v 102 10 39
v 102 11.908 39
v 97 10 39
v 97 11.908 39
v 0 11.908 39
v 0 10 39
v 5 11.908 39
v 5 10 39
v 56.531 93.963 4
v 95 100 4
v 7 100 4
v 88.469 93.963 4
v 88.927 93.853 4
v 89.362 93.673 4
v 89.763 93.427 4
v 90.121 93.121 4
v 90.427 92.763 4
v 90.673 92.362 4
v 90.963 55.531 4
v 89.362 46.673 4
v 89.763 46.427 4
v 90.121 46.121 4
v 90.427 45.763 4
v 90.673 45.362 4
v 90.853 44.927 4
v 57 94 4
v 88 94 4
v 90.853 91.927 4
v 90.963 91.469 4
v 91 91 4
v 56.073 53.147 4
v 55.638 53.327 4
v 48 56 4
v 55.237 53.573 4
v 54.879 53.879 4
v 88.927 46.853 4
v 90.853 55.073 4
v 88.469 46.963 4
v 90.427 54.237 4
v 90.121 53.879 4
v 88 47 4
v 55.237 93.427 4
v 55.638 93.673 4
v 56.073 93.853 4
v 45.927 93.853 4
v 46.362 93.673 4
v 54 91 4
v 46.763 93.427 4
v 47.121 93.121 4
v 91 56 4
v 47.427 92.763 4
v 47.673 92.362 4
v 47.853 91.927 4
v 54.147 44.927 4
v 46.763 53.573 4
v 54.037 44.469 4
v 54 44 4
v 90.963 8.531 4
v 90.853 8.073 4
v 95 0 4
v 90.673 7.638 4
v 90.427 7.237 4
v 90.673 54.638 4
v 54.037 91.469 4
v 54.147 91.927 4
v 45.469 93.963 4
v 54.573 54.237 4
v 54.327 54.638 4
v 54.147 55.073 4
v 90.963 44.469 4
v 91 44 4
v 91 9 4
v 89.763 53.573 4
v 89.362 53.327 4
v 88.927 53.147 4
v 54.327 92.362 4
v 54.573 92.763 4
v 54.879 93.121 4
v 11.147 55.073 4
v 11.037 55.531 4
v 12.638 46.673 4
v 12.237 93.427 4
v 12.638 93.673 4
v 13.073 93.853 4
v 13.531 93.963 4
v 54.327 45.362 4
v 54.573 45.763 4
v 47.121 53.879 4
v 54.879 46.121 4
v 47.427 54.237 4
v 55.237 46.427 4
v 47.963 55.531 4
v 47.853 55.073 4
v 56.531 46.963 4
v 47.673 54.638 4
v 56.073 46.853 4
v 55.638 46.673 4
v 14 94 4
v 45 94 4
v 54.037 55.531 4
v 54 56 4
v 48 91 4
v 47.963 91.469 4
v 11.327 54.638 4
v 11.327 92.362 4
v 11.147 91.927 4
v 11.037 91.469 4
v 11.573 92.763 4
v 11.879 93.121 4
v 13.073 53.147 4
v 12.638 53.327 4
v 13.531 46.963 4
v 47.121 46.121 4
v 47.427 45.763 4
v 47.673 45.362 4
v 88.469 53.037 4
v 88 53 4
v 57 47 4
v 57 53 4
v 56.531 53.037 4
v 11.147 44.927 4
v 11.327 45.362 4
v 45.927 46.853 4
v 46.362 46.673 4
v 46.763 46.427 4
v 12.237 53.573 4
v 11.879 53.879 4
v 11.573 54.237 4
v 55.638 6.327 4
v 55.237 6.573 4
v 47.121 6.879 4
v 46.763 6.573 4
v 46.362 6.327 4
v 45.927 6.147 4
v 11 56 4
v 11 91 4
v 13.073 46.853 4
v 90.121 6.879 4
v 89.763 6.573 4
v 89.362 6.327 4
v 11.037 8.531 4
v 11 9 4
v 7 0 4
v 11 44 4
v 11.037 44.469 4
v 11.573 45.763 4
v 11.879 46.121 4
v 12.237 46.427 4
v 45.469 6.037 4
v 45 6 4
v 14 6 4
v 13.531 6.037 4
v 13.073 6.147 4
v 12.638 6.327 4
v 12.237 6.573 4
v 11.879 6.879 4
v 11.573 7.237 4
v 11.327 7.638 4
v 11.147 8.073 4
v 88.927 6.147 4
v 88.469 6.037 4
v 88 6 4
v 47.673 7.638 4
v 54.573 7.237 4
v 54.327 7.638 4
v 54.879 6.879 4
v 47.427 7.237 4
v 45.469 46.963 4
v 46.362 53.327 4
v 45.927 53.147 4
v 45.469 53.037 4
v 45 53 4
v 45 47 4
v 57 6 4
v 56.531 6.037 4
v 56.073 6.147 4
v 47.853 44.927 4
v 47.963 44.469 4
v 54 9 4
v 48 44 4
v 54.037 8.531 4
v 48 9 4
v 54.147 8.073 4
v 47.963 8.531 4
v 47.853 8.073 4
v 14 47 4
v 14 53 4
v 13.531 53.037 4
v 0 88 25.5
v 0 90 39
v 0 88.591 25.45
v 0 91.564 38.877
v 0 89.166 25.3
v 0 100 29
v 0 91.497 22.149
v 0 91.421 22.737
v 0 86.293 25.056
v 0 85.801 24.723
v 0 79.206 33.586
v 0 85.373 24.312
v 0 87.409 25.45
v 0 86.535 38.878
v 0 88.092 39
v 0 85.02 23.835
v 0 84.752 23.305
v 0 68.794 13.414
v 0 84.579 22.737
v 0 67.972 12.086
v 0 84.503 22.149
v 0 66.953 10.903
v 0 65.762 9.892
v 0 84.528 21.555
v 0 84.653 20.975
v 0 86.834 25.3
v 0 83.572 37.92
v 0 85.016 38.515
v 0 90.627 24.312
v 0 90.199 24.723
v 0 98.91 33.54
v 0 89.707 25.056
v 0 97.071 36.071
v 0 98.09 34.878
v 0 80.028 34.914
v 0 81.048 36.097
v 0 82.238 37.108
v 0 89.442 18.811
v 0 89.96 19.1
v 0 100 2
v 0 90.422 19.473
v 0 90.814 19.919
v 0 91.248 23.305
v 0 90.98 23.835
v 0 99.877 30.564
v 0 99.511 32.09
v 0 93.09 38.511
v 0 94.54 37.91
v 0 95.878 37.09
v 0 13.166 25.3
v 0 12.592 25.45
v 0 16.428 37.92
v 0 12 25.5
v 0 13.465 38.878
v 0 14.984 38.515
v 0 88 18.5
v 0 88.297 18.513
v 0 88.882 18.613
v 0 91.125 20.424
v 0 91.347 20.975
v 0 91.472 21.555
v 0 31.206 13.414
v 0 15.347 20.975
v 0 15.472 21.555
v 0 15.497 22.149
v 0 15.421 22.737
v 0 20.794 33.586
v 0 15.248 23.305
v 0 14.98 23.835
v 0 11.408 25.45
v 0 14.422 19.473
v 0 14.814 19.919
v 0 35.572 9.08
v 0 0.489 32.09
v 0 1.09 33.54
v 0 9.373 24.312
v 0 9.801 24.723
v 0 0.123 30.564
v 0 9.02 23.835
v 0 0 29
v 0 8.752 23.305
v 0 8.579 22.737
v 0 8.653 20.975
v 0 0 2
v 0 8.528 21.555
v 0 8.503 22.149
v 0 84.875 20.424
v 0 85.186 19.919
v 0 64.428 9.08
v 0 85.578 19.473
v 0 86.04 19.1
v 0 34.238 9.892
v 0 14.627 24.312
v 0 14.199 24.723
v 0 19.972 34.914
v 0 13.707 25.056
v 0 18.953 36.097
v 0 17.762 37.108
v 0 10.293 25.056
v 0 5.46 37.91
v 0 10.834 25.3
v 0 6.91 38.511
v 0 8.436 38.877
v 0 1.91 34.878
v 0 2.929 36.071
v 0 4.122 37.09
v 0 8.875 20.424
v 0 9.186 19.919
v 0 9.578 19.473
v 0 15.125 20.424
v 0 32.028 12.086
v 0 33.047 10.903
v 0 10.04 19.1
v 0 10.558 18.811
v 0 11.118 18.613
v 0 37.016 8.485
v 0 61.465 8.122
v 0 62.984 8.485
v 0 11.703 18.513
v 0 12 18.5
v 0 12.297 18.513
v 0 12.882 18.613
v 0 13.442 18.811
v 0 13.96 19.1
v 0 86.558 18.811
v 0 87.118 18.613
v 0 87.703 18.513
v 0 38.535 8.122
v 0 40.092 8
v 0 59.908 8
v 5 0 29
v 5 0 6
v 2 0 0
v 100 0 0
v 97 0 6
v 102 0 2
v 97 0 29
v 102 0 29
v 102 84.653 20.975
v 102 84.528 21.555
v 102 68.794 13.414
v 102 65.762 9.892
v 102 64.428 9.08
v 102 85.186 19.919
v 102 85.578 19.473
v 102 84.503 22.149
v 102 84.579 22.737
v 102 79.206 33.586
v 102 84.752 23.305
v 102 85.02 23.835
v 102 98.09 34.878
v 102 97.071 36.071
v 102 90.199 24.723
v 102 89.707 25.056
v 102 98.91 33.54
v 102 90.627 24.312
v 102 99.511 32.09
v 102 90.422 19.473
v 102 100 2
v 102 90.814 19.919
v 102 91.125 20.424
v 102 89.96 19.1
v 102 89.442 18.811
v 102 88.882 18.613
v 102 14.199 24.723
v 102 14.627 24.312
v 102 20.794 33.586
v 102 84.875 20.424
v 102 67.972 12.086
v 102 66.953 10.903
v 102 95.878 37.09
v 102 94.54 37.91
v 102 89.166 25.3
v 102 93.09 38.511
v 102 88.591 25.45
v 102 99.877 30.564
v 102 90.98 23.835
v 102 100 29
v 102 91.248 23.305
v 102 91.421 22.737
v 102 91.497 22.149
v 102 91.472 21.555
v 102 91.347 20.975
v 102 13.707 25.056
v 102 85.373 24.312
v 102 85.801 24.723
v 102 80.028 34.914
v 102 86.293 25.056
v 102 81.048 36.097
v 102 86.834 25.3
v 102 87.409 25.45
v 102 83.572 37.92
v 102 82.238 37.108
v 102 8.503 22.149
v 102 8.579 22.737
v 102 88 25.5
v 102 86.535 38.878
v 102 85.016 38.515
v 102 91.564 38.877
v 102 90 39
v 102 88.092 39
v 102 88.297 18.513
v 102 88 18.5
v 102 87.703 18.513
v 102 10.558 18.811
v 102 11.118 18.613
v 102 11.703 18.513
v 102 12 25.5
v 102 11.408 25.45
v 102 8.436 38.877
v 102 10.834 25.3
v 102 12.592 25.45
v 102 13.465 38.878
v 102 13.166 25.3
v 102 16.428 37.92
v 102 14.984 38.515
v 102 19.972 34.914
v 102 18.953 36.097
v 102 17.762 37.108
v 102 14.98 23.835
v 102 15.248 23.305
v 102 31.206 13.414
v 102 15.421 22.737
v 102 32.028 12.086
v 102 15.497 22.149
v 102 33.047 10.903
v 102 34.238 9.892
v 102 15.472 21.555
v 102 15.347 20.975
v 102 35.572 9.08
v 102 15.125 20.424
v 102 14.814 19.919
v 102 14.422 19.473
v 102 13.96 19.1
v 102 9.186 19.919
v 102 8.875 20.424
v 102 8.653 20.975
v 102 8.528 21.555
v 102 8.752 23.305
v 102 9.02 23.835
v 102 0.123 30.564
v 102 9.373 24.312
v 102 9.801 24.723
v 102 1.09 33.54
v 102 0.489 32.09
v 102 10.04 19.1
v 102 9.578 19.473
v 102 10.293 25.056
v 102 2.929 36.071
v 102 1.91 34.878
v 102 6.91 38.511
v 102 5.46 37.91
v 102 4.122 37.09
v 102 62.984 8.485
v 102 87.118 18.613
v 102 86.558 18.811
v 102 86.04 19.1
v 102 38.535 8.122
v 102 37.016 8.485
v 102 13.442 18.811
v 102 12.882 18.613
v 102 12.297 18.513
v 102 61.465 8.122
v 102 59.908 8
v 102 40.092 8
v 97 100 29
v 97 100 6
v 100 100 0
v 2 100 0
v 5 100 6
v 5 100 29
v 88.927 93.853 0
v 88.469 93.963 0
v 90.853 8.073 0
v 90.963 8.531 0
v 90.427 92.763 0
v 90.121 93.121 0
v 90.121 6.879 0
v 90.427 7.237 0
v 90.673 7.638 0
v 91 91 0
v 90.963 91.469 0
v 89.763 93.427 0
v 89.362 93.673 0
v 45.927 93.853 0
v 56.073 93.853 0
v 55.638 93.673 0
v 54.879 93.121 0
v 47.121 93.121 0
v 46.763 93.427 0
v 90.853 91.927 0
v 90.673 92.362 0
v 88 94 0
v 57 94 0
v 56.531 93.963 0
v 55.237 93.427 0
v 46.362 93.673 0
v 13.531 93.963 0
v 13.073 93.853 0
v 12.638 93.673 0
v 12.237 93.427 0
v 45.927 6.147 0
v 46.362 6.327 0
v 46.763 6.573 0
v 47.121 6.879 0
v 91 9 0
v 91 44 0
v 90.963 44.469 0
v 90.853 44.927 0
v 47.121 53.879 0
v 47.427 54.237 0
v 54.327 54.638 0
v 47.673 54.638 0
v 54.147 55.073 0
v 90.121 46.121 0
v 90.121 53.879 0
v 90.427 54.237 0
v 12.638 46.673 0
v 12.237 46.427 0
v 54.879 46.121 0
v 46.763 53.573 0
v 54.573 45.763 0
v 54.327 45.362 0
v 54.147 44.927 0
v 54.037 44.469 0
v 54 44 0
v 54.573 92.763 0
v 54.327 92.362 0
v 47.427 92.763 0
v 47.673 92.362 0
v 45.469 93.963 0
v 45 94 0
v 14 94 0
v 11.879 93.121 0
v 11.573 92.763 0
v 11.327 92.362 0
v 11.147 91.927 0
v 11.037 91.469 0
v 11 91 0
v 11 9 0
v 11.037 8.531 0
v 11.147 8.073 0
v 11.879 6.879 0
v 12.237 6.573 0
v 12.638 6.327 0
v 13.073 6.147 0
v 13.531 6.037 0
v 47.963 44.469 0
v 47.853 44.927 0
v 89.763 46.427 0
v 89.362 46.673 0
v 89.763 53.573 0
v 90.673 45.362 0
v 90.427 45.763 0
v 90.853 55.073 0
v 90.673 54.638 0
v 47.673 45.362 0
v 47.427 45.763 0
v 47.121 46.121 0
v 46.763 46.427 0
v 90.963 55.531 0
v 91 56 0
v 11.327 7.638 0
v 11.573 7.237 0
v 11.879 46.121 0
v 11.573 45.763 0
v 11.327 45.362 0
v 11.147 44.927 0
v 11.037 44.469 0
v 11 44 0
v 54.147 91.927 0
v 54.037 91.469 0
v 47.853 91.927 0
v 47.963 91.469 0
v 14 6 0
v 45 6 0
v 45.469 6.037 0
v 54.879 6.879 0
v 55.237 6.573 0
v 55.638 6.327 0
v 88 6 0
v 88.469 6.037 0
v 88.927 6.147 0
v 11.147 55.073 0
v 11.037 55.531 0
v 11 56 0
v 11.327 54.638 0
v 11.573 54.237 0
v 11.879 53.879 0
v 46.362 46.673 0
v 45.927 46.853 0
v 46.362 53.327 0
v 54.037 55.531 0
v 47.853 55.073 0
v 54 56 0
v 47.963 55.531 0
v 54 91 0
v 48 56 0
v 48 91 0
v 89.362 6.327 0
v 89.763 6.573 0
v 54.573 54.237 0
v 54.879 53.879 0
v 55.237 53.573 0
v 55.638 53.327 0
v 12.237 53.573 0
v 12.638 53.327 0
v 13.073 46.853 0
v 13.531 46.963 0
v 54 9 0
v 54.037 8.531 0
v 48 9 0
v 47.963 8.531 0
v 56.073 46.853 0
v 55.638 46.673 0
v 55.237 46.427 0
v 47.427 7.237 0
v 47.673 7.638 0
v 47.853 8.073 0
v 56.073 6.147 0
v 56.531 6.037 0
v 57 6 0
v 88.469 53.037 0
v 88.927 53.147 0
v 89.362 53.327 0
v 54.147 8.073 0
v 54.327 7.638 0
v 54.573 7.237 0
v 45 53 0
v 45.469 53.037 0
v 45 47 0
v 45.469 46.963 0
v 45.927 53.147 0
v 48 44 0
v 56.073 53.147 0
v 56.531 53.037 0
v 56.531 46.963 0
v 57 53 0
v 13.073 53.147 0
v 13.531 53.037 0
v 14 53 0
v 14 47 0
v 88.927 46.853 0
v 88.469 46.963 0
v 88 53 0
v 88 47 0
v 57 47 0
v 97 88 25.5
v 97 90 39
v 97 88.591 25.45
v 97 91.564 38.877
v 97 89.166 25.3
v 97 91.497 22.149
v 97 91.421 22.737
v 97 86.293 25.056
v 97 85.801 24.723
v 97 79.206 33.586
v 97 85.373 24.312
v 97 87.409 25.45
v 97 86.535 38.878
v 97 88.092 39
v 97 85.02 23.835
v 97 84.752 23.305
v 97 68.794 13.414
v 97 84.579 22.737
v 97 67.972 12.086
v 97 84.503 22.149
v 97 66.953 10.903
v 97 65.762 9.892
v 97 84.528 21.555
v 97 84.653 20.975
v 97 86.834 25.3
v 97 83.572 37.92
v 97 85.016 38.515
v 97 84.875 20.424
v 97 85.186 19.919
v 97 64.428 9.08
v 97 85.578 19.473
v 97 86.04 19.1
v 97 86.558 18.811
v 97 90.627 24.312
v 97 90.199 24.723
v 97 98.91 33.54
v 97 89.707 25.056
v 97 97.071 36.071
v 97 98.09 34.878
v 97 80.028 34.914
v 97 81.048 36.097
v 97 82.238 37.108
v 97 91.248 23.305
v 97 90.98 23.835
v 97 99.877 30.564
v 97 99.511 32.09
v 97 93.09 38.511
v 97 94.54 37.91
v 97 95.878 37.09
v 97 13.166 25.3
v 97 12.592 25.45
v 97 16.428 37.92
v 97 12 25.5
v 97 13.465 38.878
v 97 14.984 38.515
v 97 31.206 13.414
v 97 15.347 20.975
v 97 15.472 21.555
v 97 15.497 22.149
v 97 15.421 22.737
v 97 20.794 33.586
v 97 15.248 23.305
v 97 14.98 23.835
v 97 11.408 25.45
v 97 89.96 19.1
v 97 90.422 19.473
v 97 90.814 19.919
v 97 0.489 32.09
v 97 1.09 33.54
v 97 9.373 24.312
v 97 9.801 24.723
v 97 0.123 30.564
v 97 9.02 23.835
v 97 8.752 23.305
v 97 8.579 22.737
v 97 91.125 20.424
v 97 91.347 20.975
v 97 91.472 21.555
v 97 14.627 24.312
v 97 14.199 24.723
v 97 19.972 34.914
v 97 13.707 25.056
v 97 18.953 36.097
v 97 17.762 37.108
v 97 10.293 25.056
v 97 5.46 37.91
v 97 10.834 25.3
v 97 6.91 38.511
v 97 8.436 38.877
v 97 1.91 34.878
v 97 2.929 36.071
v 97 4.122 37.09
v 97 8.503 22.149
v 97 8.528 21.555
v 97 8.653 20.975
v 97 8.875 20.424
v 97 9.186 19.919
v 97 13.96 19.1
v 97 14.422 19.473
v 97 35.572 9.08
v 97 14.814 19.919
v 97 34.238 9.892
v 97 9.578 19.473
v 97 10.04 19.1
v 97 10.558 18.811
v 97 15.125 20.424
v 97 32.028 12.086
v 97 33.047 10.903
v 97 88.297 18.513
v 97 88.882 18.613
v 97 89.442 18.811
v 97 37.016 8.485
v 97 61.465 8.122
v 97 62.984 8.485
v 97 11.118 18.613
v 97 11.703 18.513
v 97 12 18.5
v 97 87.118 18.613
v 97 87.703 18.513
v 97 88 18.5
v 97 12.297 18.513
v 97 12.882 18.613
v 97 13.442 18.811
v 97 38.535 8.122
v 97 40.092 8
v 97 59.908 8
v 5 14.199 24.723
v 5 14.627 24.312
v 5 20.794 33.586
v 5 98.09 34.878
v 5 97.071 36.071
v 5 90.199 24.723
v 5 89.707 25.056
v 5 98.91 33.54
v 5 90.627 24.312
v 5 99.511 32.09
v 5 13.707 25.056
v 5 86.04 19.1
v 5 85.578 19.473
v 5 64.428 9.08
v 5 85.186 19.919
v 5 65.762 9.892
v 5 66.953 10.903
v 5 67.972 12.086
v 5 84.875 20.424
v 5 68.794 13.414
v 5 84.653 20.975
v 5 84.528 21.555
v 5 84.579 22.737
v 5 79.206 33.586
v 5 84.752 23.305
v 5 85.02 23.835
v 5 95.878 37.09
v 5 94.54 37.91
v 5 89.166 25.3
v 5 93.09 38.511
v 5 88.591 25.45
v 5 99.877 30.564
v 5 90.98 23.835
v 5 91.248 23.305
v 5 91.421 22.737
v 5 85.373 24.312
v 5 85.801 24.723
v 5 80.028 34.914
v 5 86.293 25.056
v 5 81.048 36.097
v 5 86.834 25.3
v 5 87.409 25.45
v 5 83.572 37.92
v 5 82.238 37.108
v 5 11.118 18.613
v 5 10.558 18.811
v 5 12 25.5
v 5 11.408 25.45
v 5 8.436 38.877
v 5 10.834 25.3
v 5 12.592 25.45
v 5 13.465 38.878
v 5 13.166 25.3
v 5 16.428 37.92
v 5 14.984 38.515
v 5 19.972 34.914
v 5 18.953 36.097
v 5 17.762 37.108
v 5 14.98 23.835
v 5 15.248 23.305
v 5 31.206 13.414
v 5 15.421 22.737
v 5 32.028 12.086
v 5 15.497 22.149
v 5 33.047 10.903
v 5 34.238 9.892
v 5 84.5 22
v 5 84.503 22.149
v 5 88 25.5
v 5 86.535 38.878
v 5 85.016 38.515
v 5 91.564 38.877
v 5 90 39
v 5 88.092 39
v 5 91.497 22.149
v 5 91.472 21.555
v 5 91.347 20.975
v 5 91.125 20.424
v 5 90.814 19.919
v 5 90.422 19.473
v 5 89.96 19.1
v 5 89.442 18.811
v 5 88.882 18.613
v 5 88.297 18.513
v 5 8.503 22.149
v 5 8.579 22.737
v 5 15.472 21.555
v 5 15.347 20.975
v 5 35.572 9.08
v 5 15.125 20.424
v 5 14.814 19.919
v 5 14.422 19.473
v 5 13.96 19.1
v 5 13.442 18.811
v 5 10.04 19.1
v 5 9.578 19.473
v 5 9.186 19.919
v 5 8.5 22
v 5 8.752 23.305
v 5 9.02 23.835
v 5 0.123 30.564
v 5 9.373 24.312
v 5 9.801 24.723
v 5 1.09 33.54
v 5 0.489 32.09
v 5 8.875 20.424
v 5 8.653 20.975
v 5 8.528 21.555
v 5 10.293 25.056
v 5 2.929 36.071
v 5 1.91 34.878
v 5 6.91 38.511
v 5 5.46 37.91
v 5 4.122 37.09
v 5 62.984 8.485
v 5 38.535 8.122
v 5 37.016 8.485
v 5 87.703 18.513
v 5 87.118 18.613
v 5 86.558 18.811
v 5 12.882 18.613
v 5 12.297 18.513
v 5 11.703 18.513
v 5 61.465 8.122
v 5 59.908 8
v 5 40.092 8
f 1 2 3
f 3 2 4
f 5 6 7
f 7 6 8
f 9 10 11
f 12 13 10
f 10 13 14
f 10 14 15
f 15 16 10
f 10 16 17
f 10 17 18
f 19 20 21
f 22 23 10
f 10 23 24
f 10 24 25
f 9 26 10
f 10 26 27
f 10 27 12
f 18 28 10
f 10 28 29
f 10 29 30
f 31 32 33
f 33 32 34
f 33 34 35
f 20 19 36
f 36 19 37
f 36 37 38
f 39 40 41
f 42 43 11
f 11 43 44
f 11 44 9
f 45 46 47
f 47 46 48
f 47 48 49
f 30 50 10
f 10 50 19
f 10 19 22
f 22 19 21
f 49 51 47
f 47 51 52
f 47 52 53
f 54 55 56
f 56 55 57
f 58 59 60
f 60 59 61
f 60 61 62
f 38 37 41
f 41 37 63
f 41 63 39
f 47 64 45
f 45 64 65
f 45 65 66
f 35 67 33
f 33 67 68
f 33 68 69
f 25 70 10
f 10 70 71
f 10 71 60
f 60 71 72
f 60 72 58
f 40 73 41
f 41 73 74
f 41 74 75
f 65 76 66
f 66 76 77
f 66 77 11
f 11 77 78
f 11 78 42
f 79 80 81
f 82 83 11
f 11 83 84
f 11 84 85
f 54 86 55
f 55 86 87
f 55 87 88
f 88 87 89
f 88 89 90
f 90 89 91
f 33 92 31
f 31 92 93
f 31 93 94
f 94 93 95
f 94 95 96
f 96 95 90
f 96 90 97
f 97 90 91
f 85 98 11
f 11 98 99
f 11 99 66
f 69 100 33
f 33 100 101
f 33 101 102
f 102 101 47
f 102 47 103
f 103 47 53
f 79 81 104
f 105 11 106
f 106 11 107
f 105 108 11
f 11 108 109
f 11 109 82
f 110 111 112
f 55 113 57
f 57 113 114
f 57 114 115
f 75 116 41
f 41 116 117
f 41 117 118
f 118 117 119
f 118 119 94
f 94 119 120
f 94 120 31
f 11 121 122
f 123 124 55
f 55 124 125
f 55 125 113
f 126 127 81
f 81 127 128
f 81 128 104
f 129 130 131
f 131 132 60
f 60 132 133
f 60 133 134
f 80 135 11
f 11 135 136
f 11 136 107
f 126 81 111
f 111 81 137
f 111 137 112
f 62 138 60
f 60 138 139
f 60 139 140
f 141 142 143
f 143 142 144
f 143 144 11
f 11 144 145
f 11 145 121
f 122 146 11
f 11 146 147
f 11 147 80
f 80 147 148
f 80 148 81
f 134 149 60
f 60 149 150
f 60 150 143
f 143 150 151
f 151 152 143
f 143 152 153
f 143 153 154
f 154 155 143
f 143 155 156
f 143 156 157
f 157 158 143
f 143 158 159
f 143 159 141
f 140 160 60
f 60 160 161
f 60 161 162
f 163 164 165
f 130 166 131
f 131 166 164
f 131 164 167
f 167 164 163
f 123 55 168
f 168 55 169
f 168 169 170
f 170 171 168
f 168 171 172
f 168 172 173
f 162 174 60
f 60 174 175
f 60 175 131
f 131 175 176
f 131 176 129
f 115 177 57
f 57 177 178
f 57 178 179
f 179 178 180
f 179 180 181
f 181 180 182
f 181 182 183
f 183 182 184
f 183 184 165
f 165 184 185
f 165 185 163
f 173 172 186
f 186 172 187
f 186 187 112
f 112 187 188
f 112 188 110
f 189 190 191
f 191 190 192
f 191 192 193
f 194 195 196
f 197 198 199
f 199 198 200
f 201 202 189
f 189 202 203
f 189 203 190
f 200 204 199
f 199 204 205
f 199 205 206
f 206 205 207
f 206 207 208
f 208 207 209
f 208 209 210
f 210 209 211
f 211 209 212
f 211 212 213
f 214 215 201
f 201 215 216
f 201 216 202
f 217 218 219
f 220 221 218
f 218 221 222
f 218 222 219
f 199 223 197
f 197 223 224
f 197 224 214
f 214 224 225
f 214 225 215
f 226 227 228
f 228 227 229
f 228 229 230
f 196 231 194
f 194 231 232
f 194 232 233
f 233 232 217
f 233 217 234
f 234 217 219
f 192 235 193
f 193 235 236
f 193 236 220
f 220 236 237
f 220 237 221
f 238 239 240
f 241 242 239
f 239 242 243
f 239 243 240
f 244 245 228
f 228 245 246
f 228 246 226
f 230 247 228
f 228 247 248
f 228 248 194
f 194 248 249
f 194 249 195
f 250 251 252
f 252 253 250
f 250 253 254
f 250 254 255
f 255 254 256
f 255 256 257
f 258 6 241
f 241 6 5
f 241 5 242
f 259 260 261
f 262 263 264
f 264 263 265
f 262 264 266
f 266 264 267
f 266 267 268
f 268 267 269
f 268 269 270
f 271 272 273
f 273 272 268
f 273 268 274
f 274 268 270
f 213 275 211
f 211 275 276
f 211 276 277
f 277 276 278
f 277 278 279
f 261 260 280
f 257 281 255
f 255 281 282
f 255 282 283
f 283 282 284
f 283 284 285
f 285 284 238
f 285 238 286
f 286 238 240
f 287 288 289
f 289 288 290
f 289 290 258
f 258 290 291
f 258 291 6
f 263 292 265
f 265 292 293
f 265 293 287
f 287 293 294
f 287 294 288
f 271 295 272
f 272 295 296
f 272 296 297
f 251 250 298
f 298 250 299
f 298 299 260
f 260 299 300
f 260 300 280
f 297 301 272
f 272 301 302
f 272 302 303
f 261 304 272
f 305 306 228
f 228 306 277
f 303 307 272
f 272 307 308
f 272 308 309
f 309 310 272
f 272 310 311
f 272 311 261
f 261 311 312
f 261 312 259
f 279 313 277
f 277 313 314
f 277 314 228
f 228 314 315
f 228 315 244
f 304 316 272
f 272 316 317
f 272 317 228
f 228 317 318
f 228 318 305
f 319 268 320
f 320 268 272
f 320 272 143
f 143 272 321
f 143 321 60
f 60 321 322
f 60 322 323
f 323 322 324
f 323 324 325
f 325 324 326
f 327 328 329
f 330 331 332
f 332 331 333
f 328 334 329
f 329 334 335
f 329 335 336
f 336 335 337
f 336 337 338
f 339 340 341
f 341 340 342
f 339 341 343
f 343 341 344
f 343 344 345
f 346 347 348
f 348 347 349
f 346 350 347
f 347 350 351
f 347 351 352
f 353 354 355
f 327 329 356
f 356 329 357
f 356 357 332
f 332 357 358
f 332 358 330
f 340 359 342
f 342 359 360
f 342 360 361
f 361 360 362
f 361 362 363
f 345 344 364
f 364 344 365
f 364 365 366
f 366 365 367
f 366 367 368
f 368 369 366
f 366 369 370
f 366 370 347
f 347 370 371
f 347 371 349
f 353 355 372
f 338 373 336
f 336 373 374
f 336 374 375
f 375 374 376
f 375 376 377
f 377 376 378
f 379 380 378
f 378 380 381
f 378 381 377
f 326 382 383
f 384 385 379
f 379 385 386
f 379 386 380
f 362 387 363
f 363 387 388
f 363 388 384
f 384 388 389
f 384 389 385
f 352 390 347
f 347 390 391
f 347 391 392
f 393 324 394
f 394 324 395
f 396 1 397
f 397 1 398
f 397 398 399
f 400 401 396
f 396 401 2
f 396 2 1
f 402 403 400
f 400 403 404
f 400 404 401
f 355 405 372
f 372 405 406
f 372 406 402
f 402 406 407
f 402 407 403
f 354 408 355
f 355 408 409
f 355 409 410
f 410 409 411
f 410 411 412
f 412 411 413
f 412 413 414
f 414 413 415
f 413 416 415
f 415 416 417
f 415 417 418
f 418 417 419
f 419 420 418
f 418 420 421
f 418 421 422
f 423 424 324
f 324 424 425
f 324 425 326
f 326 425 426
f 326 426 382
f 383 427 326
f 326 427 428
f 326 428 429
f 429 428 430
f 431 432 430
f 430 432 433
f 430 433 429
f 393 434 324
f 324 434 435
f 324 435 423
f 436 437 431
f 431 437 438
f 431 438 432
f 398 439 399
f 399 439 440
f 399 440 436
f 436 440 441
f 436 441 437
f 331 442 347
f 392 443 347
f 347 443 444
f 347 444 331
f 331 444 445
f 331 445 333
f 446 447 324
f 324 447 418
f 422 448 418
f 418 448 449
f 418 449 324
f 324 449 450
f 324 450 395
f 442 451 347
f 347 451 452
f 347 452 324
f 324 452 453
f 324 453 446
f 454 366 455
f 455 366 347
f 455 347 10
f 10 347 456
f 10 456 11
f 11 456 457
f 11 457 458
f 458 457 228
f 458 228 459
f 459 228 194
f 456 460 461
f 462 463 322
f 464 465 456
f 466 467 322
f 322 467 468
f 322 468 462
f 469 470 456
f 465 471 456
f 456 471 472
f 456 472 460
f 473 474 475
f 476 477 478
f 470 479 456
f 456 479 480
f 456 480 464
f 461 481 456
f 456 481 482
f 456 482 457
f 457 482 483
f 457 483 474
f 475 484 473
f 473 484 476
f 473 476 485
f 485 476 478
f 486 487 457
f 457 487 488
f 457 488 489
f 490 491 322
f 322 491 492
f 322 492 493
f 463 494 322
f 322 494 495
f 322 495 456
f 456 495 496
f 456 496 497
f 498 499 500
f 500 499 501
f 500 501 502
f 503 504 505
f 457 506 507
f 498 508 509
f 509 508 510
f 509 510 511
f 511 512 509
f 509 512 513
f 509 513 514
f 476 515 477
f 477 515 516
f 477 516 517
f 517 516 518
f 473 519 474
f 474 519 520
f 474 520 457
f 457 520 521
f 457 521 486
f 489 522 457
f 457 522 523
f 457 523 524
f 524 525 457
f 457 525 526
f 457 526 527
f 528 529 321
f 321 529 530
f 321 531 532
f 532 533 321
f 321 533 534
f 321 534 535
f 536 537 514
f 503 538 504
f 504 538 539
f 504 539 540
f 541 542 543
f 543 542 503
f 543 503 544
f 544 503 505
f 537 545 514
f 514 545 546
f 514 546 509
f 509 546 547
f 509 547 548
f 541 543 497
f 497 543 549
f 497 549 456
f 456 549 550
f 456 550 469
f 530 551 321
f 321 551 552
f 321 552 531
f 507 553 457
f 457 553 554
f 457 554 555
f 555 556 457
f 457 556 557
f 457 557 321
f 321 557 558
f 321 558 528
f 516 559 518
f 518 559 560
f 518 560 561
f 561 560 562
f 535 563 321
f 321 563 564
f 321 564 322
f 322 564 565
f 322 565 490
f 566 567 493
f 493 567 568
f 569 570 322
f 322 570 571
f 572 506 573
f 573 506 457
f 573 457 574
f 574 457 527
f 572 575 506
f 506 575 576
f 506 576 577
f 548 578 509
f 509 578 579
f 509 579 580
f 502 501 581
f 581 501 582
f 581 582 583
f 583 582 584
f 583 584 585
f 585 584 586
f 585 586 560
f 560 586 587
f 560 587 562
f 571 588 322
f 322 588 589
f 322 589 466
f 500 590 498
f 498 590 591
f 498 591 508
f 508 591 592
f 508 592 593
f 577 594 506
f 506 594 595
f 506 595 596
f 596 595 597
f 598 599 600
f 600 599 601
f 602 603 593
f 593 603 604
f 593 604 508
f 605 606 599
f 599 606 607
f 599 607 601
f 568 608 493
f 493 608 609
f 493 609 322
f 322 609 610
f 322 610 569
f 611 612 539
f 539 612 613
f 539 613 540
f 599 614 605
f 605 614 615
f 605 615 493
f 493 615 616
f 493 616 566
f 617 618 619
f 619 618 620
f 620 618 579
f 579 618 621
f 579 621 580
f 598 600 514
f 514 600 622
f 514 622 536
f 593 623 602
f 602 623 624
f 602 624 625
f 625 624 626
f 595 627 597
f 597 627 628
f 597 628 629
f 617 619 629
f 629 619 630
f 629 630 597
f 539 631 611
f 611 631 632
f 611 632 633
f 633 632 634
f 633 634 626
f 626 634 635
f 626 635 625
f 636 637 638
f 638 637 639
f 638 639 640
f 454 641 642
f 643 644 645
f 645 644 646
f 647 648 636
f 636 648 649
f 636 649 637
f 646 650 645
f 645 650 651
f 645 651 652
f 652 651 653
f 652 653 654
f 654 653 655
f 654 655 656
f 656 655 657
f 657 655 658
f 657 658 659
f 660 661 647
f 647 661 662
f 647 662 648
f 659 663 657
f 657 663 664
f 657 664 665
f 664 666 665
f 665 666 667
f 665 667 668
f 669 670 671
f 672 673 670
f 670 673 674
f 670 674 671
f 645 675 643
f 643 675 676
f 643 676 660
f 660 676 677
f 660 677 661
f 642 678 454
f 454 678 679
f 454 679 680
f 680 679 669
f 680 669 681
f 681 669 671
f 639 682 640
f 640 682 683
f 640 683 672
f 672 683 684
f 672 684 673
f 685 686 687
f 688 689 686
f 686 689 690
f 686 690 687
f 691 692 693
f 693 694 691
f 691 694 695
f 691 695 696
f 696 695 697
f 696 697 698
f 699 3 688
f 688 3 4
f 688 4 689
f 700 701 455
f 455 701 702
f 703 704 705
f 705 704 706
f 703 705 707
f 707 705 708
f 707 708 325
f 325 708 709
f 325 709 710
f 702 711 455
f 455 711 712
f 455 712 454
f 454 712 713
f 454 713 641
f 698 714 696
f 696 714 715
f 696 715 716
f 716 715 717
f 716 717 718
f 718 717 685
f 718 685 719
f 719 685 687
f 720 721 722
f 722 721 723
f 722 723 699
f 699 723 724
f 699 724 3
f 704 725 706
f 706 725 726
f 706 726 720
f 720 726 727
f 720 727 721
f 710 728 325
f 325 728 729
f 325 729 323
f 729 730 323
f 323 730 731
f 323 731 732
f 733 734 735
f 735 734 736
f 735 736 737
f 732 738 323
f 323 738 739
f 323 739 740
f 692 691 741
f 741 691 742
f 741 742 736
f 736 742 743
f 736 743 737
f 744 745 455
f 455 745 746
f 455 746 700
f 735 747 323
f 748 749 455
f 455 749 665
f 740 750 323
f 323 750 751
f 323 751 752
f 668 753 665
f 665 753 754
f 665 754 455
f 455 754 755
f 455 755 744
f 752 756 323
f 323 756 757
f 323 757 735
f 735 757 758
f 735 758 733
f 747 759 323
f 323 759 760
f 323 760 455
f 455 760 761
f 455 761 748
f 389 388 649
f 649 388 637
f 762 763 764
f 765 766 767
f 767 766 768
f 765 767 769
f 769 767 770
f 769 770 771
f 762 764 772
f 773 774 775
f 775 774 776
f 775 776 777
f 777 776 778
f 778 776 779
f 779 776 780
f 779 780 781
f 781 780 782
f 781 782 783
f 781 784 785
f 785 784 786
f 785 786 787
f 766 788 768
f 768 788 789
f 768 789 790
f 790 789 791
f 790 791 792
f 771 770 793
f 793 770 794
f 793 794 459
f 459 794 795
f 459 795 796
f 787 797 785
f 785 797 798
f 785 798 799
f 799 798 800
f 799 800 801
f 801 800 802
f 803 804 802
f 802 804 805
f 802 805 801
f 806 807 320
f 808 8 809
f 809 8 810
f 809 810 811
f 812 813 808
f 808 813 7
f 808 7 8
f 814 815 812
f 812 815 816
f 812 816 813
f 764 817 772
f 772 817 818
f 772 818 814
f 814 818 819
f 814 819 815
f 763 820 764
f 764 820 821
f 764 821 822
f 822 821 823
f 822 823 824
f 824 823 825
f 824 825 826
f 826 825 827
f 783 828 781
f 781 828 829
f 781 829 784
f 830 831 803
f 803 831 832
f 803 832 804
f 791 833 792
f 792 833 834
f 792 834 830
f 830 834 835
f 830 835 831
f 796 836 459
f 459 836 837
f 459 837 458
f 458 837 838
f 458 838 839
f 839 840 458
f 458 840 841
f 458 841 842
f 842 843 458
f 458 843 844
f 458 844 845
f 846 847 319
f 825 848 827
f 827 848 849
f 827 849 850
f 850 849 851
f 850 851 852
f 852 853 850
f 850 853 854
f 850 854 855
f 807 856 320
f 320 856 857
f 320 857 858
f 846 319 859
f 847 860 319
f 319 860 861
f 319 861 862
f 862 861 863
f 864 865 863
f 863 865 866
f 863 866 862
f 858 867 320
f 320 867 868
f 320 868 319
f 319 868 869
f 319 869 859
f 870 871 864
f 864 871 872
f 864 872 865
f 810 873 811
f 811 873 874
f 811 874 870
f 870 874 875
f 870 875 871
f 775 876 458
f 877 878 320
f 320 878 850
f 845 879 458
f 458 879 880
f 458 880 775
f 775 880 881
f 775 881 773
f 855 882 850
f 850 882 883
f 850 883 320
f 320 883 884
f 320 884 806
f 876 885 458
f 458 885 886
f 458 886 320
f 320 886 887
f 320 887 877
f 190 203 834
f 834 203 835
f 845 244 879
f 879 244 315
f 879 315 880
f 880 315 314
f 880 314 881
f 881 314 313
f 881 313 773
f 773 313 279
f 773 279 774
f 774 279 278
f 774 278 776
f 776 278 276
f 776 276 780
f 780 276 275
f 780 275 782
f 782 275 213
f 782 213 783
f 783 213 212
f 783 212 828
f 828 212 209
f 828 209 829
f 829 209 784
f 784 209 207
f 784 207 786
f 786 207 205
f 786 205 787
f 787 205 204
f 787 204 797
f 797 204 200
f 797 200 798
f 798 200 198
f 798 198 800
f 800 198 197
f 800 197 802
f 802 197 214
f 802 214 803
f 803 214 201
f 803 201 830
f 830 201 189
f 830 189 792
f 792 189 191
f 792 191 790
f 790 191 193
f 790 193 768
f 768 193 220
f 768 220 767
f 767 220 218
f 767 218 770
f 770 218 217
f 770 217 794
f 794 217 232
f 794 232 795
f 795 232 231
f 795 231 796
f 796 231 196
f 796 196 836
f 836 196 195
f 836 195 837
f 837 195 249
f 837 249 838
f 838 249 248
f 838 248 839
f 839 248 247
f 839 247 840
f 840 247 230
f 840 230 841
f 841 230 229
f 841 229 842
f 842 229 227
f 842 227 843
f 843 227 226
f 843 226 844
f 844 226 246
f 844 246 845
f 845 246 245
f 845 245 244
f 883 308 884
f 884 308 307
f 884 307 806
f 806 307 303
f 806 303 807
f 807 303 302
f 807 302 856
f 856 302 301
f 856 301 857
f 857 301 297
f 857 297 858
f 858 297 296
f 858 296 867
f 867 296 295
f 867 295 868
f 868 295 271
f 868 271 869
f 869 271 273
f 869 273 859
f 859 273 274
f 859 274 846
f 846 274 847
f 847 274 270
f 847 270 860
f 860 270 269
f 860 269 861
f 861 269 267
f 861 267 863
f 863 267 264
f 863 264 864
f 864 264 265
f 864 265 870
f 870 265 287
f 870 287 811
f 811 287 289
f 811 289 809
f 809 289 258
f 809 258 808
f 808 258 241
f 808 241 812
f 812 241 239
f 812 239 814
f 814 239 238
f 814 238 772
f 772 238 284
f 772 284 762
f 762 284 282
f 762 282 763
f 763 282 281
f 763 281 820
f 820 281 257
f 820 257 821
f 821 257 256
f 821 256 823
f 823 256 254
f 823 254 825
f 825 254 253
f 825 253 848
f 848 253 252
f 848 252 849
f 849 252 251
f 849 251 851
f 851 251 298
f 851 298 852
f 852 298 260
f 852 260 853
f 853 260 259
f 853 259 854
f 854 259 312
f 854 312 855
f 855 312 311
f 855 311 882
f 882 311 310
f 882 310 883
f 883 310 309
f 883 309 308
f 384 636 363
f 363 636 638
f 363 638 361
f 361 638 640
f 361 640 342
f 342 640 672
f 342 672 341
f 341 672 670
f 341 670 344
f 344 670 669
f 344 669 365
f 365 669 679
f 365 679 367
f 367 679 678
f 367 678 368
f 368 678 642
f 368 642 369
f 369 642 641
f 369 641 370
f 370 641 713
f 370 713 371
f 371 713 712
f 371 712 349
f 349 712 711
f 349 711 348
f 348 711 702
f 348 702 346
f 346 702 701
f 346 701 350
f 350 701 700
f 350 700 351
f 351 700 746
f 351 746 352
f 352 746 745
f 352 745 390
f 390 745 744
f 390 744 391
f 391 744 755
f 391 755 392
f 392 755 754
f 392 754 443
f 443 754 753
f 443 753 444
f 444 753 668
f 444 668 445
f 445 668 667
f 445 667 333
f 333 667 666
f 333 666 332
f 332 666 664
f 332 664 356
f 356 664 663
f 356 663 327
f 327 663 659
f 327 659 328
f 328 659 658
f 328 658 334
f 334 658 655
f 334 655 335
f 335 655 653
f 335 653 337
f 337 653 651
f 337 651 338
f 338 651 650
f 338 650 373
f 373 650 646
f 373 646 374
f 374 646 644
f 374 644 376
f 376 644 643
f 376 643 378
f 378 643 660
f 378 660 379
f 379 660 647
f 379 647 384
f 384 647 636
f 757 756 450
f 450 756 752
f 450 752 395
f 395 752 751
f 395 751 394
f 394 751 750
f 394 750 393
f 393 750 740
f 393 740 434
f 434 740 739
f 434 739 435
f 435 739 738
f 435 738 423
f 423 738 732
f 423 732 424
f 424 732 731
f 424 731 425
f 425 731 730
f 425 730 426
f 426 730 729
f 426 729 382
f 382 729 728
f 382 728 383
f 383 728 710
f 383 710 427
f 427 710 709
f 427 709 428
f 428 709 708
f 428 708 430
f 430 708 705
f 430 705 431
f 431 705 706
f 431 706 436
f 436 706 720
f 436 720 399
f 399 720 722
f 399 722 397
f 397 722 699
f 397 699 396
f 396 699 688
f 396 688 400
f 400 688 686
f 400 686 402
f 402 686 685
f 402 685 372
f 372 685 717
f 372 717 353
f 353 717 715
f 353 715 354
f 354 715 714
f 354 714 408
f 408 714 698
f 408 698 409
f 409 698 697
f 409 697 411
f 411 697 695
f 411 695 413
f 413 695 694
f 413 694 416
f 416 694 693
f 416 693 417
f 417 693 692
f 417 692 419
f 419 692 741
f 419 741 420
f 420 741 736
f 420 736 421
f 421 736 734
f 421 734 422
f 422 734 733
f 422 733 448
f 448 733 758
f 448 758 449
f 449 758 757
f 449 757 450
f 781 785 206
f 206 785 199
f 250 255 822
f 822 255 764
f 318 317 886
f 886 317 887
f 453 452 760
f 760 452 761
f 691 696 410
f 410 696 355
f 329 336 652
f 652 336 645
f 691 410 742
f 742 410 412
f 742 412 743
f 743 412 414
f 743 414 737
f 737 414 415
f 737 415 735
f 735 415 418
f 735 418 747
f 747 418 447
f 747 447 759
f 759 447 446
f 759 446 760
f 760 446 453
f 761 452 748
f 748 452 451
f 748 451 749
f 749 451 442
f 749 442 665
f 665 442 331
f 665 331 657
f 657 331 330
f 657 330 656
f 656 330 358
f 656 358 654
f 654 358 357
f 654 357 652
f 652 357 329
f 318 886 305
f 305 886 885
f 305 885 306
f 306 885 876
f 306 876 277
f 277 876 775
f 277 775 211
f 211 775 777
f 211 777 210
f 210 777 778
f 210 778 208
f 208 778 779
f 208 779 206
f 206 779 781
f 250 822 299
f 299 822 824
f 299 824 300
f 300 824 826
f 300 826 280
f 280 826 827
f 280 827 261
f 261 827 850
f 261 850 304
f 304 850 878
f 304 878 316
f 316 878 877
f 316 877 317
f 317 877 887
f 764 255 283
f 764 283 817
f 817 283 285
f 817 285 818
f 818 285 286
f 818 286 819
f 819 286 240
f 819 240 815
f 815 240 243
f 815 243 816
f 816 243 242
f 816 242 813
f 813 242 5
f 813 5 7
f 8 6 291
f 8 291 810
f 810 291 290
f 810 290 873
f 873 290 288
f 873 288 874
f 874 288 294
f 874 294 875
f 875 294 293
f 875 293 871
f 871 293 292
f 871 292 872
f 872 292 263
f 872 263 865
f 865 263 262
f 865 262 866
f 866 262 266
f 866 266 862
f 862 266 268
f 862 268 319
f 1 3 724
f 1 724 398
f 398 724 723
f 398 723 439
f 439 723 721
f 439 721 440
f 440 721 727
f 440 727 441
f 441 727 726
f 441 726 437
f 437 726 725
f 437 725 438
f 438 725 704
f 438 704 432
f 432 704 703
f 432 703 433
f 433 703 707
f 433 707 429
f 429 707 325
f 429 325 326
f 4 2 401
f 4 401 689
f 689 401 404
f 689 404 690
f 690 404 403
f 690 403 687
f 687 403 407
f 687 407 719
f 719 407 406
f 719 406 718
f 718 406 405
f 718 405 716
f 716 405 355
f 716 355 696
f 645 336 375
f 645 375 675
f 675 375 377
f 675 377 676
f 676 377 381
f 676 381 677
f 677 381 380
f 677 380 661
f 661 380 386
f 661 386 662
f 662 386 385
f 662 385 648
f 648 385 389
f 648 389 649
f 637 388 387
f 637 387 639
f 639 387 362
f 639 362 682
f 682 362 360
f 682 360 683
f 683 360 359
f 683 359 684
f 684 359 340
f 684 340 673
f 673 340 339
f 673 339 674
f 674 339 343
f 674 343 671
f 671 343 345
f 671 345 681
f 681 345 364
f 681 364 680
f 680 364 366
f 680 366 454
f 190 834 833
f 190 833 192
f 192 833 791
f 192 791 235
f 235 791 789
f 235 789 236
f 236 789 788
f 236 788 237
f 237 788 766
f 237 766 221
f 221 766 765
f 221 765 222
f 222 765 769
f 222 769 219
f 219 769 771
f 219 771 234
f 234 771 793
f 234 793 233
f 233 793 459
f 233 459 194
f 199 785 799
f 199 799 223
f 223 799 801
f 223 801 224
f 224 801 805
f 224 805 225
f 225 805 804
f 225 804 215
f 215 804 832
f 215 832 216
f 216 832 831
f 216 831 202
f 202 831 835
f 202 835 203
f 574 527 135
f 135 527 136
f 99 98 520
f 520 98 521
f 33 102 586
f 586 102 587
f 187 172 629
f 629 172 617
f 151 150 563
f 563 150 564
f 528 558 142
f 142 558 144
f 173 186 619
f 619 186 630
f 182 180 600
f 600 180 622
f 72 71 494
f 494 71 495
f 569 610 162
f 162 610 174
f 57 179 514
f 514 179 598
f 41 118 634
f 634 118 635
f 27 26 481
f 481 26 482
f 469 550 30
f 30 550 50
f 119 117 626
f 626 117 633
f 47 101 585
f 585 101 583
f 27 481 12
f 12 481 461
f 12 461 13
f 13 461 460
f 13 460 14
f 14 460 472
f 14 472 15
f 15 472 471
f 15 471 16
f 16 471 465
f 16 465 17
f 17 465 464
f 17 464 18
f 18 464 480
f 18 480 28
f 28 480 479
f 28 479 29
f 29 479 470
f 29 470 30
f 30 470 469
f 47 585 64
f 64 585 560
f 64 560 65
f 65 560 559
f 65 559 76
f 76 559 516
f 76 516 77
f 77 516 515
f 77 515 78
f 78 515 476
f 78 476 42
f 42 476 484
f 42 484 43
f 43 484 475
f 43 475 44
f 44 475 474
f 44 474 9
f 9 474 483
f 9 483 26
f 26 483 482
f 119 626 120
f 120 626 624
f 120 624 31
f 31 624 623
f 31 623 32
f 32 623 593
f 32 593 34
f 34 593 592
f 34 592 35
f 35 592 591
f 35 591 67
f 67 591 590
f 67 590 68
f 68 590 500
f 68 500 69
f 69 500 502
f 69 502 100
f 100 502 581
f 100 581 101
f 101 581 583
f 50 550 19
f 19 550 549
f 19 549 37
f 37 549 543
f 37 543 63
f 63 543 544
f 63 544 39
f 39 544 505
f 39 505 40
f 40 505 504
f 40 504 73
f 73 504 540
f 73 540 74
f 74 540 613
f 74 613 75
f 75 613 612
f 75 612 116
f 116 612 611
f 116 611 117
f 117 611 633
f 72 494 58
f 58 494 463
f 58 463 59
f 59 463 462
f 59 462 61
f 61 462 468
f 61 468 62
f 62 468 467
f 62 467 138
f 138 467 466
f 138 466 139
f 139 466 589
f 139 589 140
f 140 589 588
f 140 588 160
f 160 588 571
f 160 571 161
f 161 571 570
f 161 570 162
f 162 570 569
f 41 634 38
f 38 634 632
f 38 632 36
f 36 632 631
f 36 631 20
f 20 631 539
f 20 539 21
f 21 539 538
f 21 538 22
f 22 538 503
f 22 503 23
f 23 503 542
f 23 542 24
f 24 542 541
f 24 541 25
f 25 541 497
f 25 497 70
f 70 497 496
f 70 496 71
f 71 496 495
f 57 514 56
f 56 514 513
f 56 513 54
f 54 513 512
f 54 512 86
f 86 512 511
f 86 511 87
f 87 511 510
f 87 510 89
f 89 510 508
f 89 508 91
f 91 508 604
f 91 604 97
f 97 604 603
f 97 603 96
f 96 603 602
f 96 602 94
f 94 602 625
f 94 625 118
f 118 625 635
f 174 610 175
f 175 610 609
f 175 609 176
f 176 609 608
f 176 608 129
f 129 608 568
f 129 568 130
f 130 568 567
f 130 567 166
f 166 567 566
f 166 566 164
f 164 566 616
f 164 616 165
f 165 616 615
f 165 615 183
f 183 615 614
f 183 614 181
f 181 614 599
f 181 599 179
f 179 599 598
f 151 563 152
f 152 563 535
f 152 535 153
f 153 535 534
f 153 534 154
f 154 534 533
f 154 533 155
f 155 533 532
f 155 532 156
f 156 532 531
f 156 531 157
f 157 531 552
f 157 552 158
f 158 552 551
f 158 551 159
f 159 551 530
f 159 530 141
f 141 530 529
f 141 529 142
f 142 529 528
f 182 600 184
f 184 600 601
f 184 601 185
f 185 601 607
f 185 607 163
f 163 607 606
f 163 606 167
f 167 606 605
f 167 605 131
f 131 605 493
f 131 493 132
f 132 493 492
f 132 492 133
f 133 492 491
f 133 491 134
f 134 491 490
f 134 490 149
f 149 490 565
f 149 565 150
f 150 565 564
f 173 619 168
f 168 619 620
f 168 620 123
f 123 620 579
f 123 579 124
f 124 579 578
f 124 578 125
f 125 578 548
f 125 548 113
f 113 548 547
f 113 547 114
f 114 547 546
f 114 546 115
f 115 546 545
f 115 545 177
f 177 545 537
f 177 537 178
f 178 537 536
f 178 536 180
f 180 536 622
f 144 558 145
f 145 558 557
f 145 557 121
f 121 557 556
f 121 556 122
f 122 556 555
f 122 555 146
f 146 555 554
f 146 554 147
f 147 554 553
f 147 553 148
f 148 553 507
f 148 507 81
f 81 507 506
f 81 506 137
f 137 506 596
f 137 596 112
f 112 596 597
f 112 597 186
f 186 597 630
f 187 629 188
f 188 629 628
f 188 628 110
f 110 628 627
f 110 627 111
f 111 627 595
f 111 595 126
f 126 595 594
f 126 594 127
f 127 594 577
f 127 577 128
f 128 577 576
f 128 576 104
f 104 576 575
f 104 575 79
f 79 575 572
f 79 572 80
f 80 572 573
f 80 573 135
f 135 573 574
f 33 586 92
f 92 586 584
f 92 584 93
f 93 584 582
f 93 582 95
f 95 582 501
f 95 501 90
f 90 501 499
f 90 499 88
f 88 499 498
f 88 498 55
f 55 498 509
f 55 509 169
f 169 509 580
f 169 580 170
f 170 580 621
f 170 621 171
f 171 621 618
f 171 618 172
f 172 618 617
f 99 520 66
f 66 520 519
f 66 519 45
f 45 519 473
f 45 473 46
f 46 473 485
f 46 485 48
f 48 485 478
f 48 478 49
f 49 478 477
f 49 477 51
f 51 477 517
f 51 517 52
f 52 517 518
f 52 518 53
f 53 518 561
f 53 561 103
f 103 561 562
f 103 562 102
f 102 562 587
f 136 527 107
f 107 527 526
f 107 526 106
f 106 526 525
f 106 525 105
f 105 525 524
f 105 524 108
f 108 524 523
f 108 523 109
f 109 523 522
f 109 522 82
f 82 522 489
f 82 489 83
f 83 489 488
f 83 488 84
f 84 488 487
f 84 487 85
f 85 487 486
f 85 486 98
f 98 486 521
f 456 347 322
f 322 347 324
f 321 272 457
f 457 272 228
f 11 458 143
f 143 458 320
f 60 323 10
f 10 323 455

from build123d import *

# Parameters (mm, degrees)
ESQUISSE1_W                  = 102
ESQUISSE1_H                  = 100
BOSS_EXTRU_1_DEPTH           = 4
ESQUISSE2_W                  = 5
ESQUISSE2_H                  = 100
BOSS_EXTRU_2_DEPTH           = 35
ENL_V_MAT_EXTRU_1_DEPTH      = 149.07092895
ENL_V_MAT_EXTRU_1_DEPTH_BACK = 149.07092895
ESQUISSE3_R                  = 3.5
ENL_V_MAT_EXTRU_2_DEPTH      = 149.07092895
ENL_V_MAT_EXTRU_2_DEPTH_BACK = 149.07092895
CONG_1_R                     = 10
ENL_V_MAT_EXTRU_3_DEPTH      = 148.068011478
ENL_V_MAT_EXTRU_3_DEPTH_BACK = 148.068011478
ESQUISSE5_W                  = 37
ESQUISSE5_H                  = 41
CONG_2_R                     = 3
CHANFREIN1_SIZE              = 2


with BuildPart() as part:
    # Esquisse1 → Boss.-Extru.1 (new body)
    with BuildSketch(Plane.XY):
        with Locations((51, 50)):
            Rectangle(ESQUISSE1_W, ESQUISSE1_H)
    extrude(amount=BOSS_EXTRU_1_DEPTH)

    # Esquisse2 → Boss.-Extru.2 (add)
    with BuildSketch(Plane.XY.offset(4)):
        with Locations((2.5, 50)):
            Rectangle(ESQUISSE2_W, ESQUISSE2_H)
        with Locations((99.5, 50)):
            Rectangle(ESQUISSE2_W, ESQUISSE2_H)
    extrude(amount=BOSS_EXTRU_2_DEPTH)

    # Esquisse3 → Enlèv. mat.-Extru.1 (cut, two sides: drawn at the far end of the back side and taken through both)
    with BuildSketch(Plane.ZY.offset(-ENL_V_MAT_EXTRU_1_DEPTH_BACK)):
        with Locations(Location((22, 12, 0), (0, 0, 270))):
            Circle(ESQUISSE3_R)
        with Locations(Location((22, 88, 0), (0, 0, 270))):
            Circle(ESQUISSE3_R)
    extrude(amount=ENL_V_MAT_EXTRU_1_DEPTH + ENL_V_MAT_EXTRU_1_DEPTH_BACK, mode=Mode.SUBTRACT)

    # Esquisse4 → Enlèv. mat.-Extru.2 (cut, two sides: drawn at the far end of the back side and taken through both)
    with BuildSketch(Plane.ZY.offset(-ENL_V_MAT_EXTRU_2_DEPTH_BACK)):
        Polygon((39, 82), (8, 66), (8, 34), (39, 18), align=None)
    extrude(amount=ENL_V_MAT_EXTRU_2_DEPTH + ENL_V_MAT_EXTRU_2_DEPTH_BACK, mode=Mode.SUBTRACT)

    # Congé1
    cong_1_edges = [part.edges().sort_by_distance(p)[0] for p in [
        (99.5, 100, 39),
        (99.5, 0, 39),
        (2.5, 0, 39),
        (2.5, 100, 39),
        (2.5, 82, 39),
        (2.5, 18, 39),
        (99.5, 82, 39),
        (2.5, 34, 8),
        (99.5, 34, 8),
        (99.5, 18, 39),
        (2.5, 66, 8),
        (99.5, 66, 8),
    ]]
    fillet(cong_1_edges, radius=CONG_1_R)

    # Esquisse5 → Enlèv. mat.-Extru.3 (cut, two sides: drawn at the far end of the back side and taken through both)
    with BuildSketch(Plane.XY.offset(4).offset(-ENL_V_MAT_EXTRU_3_DEPTH_BACK)):
        with Locations((29.5, 73.5)):
            Rectangle(ESQUISSE5_W, ESQUISSE5_H)
        with Locations((29.5, 26.5)):
            Rectangle(ESQUISSE5_W, ESQUISSE5_H)
        with Locations((72.5, 26.5)):
            Rectangle(ESQUISSE5_W, ESQUISSE5_H)
        with Locations((72.5, 73.5)):
            Rectangle(ESQUISSE5_W, ESQUISSE5_H)
    extrude(amount=ENL_V_MAT_EXTRU_3_DEPTH + ENL_V_MAT_EXTRU_3_DEPTH_BACK, mode=Mode.SUBTRACT)

    # Congé2
    cong_2_edges = [part.edges().sort_by_distance(p)[0] for p in [
        (54, 94, 2),
        (91, 94, 2),
        (91, 53, 2),
        (54, 53, 2),
        (91, 47, 2),
        (91, 6, 2),
        (54, 6, 2),
        (54, 47, 2),
        (48, 6, 2),
        (11, 6, 2),
        (11, 47, 2),
        (48, 47, 2),
        (11, 53, 2),
        (11, 94, 2),
        (48, 94, 2),
        (48, 53, 2),
    ]]
    fillet(cong_2_edges, radius=CONG_2_R)

    # Chanfrein1
    chanfrein1_edges = [part.edges().sort_by_distance(p)[0] for p in [
        (97, 50, 4),
        (5, 50, 4),
        (102, 50, 0),
        (0, 50, 0),
    ]]
    chamfer(chanfrein1_edges, length=CHANFREIN1_SIZE)


solid = part.part
